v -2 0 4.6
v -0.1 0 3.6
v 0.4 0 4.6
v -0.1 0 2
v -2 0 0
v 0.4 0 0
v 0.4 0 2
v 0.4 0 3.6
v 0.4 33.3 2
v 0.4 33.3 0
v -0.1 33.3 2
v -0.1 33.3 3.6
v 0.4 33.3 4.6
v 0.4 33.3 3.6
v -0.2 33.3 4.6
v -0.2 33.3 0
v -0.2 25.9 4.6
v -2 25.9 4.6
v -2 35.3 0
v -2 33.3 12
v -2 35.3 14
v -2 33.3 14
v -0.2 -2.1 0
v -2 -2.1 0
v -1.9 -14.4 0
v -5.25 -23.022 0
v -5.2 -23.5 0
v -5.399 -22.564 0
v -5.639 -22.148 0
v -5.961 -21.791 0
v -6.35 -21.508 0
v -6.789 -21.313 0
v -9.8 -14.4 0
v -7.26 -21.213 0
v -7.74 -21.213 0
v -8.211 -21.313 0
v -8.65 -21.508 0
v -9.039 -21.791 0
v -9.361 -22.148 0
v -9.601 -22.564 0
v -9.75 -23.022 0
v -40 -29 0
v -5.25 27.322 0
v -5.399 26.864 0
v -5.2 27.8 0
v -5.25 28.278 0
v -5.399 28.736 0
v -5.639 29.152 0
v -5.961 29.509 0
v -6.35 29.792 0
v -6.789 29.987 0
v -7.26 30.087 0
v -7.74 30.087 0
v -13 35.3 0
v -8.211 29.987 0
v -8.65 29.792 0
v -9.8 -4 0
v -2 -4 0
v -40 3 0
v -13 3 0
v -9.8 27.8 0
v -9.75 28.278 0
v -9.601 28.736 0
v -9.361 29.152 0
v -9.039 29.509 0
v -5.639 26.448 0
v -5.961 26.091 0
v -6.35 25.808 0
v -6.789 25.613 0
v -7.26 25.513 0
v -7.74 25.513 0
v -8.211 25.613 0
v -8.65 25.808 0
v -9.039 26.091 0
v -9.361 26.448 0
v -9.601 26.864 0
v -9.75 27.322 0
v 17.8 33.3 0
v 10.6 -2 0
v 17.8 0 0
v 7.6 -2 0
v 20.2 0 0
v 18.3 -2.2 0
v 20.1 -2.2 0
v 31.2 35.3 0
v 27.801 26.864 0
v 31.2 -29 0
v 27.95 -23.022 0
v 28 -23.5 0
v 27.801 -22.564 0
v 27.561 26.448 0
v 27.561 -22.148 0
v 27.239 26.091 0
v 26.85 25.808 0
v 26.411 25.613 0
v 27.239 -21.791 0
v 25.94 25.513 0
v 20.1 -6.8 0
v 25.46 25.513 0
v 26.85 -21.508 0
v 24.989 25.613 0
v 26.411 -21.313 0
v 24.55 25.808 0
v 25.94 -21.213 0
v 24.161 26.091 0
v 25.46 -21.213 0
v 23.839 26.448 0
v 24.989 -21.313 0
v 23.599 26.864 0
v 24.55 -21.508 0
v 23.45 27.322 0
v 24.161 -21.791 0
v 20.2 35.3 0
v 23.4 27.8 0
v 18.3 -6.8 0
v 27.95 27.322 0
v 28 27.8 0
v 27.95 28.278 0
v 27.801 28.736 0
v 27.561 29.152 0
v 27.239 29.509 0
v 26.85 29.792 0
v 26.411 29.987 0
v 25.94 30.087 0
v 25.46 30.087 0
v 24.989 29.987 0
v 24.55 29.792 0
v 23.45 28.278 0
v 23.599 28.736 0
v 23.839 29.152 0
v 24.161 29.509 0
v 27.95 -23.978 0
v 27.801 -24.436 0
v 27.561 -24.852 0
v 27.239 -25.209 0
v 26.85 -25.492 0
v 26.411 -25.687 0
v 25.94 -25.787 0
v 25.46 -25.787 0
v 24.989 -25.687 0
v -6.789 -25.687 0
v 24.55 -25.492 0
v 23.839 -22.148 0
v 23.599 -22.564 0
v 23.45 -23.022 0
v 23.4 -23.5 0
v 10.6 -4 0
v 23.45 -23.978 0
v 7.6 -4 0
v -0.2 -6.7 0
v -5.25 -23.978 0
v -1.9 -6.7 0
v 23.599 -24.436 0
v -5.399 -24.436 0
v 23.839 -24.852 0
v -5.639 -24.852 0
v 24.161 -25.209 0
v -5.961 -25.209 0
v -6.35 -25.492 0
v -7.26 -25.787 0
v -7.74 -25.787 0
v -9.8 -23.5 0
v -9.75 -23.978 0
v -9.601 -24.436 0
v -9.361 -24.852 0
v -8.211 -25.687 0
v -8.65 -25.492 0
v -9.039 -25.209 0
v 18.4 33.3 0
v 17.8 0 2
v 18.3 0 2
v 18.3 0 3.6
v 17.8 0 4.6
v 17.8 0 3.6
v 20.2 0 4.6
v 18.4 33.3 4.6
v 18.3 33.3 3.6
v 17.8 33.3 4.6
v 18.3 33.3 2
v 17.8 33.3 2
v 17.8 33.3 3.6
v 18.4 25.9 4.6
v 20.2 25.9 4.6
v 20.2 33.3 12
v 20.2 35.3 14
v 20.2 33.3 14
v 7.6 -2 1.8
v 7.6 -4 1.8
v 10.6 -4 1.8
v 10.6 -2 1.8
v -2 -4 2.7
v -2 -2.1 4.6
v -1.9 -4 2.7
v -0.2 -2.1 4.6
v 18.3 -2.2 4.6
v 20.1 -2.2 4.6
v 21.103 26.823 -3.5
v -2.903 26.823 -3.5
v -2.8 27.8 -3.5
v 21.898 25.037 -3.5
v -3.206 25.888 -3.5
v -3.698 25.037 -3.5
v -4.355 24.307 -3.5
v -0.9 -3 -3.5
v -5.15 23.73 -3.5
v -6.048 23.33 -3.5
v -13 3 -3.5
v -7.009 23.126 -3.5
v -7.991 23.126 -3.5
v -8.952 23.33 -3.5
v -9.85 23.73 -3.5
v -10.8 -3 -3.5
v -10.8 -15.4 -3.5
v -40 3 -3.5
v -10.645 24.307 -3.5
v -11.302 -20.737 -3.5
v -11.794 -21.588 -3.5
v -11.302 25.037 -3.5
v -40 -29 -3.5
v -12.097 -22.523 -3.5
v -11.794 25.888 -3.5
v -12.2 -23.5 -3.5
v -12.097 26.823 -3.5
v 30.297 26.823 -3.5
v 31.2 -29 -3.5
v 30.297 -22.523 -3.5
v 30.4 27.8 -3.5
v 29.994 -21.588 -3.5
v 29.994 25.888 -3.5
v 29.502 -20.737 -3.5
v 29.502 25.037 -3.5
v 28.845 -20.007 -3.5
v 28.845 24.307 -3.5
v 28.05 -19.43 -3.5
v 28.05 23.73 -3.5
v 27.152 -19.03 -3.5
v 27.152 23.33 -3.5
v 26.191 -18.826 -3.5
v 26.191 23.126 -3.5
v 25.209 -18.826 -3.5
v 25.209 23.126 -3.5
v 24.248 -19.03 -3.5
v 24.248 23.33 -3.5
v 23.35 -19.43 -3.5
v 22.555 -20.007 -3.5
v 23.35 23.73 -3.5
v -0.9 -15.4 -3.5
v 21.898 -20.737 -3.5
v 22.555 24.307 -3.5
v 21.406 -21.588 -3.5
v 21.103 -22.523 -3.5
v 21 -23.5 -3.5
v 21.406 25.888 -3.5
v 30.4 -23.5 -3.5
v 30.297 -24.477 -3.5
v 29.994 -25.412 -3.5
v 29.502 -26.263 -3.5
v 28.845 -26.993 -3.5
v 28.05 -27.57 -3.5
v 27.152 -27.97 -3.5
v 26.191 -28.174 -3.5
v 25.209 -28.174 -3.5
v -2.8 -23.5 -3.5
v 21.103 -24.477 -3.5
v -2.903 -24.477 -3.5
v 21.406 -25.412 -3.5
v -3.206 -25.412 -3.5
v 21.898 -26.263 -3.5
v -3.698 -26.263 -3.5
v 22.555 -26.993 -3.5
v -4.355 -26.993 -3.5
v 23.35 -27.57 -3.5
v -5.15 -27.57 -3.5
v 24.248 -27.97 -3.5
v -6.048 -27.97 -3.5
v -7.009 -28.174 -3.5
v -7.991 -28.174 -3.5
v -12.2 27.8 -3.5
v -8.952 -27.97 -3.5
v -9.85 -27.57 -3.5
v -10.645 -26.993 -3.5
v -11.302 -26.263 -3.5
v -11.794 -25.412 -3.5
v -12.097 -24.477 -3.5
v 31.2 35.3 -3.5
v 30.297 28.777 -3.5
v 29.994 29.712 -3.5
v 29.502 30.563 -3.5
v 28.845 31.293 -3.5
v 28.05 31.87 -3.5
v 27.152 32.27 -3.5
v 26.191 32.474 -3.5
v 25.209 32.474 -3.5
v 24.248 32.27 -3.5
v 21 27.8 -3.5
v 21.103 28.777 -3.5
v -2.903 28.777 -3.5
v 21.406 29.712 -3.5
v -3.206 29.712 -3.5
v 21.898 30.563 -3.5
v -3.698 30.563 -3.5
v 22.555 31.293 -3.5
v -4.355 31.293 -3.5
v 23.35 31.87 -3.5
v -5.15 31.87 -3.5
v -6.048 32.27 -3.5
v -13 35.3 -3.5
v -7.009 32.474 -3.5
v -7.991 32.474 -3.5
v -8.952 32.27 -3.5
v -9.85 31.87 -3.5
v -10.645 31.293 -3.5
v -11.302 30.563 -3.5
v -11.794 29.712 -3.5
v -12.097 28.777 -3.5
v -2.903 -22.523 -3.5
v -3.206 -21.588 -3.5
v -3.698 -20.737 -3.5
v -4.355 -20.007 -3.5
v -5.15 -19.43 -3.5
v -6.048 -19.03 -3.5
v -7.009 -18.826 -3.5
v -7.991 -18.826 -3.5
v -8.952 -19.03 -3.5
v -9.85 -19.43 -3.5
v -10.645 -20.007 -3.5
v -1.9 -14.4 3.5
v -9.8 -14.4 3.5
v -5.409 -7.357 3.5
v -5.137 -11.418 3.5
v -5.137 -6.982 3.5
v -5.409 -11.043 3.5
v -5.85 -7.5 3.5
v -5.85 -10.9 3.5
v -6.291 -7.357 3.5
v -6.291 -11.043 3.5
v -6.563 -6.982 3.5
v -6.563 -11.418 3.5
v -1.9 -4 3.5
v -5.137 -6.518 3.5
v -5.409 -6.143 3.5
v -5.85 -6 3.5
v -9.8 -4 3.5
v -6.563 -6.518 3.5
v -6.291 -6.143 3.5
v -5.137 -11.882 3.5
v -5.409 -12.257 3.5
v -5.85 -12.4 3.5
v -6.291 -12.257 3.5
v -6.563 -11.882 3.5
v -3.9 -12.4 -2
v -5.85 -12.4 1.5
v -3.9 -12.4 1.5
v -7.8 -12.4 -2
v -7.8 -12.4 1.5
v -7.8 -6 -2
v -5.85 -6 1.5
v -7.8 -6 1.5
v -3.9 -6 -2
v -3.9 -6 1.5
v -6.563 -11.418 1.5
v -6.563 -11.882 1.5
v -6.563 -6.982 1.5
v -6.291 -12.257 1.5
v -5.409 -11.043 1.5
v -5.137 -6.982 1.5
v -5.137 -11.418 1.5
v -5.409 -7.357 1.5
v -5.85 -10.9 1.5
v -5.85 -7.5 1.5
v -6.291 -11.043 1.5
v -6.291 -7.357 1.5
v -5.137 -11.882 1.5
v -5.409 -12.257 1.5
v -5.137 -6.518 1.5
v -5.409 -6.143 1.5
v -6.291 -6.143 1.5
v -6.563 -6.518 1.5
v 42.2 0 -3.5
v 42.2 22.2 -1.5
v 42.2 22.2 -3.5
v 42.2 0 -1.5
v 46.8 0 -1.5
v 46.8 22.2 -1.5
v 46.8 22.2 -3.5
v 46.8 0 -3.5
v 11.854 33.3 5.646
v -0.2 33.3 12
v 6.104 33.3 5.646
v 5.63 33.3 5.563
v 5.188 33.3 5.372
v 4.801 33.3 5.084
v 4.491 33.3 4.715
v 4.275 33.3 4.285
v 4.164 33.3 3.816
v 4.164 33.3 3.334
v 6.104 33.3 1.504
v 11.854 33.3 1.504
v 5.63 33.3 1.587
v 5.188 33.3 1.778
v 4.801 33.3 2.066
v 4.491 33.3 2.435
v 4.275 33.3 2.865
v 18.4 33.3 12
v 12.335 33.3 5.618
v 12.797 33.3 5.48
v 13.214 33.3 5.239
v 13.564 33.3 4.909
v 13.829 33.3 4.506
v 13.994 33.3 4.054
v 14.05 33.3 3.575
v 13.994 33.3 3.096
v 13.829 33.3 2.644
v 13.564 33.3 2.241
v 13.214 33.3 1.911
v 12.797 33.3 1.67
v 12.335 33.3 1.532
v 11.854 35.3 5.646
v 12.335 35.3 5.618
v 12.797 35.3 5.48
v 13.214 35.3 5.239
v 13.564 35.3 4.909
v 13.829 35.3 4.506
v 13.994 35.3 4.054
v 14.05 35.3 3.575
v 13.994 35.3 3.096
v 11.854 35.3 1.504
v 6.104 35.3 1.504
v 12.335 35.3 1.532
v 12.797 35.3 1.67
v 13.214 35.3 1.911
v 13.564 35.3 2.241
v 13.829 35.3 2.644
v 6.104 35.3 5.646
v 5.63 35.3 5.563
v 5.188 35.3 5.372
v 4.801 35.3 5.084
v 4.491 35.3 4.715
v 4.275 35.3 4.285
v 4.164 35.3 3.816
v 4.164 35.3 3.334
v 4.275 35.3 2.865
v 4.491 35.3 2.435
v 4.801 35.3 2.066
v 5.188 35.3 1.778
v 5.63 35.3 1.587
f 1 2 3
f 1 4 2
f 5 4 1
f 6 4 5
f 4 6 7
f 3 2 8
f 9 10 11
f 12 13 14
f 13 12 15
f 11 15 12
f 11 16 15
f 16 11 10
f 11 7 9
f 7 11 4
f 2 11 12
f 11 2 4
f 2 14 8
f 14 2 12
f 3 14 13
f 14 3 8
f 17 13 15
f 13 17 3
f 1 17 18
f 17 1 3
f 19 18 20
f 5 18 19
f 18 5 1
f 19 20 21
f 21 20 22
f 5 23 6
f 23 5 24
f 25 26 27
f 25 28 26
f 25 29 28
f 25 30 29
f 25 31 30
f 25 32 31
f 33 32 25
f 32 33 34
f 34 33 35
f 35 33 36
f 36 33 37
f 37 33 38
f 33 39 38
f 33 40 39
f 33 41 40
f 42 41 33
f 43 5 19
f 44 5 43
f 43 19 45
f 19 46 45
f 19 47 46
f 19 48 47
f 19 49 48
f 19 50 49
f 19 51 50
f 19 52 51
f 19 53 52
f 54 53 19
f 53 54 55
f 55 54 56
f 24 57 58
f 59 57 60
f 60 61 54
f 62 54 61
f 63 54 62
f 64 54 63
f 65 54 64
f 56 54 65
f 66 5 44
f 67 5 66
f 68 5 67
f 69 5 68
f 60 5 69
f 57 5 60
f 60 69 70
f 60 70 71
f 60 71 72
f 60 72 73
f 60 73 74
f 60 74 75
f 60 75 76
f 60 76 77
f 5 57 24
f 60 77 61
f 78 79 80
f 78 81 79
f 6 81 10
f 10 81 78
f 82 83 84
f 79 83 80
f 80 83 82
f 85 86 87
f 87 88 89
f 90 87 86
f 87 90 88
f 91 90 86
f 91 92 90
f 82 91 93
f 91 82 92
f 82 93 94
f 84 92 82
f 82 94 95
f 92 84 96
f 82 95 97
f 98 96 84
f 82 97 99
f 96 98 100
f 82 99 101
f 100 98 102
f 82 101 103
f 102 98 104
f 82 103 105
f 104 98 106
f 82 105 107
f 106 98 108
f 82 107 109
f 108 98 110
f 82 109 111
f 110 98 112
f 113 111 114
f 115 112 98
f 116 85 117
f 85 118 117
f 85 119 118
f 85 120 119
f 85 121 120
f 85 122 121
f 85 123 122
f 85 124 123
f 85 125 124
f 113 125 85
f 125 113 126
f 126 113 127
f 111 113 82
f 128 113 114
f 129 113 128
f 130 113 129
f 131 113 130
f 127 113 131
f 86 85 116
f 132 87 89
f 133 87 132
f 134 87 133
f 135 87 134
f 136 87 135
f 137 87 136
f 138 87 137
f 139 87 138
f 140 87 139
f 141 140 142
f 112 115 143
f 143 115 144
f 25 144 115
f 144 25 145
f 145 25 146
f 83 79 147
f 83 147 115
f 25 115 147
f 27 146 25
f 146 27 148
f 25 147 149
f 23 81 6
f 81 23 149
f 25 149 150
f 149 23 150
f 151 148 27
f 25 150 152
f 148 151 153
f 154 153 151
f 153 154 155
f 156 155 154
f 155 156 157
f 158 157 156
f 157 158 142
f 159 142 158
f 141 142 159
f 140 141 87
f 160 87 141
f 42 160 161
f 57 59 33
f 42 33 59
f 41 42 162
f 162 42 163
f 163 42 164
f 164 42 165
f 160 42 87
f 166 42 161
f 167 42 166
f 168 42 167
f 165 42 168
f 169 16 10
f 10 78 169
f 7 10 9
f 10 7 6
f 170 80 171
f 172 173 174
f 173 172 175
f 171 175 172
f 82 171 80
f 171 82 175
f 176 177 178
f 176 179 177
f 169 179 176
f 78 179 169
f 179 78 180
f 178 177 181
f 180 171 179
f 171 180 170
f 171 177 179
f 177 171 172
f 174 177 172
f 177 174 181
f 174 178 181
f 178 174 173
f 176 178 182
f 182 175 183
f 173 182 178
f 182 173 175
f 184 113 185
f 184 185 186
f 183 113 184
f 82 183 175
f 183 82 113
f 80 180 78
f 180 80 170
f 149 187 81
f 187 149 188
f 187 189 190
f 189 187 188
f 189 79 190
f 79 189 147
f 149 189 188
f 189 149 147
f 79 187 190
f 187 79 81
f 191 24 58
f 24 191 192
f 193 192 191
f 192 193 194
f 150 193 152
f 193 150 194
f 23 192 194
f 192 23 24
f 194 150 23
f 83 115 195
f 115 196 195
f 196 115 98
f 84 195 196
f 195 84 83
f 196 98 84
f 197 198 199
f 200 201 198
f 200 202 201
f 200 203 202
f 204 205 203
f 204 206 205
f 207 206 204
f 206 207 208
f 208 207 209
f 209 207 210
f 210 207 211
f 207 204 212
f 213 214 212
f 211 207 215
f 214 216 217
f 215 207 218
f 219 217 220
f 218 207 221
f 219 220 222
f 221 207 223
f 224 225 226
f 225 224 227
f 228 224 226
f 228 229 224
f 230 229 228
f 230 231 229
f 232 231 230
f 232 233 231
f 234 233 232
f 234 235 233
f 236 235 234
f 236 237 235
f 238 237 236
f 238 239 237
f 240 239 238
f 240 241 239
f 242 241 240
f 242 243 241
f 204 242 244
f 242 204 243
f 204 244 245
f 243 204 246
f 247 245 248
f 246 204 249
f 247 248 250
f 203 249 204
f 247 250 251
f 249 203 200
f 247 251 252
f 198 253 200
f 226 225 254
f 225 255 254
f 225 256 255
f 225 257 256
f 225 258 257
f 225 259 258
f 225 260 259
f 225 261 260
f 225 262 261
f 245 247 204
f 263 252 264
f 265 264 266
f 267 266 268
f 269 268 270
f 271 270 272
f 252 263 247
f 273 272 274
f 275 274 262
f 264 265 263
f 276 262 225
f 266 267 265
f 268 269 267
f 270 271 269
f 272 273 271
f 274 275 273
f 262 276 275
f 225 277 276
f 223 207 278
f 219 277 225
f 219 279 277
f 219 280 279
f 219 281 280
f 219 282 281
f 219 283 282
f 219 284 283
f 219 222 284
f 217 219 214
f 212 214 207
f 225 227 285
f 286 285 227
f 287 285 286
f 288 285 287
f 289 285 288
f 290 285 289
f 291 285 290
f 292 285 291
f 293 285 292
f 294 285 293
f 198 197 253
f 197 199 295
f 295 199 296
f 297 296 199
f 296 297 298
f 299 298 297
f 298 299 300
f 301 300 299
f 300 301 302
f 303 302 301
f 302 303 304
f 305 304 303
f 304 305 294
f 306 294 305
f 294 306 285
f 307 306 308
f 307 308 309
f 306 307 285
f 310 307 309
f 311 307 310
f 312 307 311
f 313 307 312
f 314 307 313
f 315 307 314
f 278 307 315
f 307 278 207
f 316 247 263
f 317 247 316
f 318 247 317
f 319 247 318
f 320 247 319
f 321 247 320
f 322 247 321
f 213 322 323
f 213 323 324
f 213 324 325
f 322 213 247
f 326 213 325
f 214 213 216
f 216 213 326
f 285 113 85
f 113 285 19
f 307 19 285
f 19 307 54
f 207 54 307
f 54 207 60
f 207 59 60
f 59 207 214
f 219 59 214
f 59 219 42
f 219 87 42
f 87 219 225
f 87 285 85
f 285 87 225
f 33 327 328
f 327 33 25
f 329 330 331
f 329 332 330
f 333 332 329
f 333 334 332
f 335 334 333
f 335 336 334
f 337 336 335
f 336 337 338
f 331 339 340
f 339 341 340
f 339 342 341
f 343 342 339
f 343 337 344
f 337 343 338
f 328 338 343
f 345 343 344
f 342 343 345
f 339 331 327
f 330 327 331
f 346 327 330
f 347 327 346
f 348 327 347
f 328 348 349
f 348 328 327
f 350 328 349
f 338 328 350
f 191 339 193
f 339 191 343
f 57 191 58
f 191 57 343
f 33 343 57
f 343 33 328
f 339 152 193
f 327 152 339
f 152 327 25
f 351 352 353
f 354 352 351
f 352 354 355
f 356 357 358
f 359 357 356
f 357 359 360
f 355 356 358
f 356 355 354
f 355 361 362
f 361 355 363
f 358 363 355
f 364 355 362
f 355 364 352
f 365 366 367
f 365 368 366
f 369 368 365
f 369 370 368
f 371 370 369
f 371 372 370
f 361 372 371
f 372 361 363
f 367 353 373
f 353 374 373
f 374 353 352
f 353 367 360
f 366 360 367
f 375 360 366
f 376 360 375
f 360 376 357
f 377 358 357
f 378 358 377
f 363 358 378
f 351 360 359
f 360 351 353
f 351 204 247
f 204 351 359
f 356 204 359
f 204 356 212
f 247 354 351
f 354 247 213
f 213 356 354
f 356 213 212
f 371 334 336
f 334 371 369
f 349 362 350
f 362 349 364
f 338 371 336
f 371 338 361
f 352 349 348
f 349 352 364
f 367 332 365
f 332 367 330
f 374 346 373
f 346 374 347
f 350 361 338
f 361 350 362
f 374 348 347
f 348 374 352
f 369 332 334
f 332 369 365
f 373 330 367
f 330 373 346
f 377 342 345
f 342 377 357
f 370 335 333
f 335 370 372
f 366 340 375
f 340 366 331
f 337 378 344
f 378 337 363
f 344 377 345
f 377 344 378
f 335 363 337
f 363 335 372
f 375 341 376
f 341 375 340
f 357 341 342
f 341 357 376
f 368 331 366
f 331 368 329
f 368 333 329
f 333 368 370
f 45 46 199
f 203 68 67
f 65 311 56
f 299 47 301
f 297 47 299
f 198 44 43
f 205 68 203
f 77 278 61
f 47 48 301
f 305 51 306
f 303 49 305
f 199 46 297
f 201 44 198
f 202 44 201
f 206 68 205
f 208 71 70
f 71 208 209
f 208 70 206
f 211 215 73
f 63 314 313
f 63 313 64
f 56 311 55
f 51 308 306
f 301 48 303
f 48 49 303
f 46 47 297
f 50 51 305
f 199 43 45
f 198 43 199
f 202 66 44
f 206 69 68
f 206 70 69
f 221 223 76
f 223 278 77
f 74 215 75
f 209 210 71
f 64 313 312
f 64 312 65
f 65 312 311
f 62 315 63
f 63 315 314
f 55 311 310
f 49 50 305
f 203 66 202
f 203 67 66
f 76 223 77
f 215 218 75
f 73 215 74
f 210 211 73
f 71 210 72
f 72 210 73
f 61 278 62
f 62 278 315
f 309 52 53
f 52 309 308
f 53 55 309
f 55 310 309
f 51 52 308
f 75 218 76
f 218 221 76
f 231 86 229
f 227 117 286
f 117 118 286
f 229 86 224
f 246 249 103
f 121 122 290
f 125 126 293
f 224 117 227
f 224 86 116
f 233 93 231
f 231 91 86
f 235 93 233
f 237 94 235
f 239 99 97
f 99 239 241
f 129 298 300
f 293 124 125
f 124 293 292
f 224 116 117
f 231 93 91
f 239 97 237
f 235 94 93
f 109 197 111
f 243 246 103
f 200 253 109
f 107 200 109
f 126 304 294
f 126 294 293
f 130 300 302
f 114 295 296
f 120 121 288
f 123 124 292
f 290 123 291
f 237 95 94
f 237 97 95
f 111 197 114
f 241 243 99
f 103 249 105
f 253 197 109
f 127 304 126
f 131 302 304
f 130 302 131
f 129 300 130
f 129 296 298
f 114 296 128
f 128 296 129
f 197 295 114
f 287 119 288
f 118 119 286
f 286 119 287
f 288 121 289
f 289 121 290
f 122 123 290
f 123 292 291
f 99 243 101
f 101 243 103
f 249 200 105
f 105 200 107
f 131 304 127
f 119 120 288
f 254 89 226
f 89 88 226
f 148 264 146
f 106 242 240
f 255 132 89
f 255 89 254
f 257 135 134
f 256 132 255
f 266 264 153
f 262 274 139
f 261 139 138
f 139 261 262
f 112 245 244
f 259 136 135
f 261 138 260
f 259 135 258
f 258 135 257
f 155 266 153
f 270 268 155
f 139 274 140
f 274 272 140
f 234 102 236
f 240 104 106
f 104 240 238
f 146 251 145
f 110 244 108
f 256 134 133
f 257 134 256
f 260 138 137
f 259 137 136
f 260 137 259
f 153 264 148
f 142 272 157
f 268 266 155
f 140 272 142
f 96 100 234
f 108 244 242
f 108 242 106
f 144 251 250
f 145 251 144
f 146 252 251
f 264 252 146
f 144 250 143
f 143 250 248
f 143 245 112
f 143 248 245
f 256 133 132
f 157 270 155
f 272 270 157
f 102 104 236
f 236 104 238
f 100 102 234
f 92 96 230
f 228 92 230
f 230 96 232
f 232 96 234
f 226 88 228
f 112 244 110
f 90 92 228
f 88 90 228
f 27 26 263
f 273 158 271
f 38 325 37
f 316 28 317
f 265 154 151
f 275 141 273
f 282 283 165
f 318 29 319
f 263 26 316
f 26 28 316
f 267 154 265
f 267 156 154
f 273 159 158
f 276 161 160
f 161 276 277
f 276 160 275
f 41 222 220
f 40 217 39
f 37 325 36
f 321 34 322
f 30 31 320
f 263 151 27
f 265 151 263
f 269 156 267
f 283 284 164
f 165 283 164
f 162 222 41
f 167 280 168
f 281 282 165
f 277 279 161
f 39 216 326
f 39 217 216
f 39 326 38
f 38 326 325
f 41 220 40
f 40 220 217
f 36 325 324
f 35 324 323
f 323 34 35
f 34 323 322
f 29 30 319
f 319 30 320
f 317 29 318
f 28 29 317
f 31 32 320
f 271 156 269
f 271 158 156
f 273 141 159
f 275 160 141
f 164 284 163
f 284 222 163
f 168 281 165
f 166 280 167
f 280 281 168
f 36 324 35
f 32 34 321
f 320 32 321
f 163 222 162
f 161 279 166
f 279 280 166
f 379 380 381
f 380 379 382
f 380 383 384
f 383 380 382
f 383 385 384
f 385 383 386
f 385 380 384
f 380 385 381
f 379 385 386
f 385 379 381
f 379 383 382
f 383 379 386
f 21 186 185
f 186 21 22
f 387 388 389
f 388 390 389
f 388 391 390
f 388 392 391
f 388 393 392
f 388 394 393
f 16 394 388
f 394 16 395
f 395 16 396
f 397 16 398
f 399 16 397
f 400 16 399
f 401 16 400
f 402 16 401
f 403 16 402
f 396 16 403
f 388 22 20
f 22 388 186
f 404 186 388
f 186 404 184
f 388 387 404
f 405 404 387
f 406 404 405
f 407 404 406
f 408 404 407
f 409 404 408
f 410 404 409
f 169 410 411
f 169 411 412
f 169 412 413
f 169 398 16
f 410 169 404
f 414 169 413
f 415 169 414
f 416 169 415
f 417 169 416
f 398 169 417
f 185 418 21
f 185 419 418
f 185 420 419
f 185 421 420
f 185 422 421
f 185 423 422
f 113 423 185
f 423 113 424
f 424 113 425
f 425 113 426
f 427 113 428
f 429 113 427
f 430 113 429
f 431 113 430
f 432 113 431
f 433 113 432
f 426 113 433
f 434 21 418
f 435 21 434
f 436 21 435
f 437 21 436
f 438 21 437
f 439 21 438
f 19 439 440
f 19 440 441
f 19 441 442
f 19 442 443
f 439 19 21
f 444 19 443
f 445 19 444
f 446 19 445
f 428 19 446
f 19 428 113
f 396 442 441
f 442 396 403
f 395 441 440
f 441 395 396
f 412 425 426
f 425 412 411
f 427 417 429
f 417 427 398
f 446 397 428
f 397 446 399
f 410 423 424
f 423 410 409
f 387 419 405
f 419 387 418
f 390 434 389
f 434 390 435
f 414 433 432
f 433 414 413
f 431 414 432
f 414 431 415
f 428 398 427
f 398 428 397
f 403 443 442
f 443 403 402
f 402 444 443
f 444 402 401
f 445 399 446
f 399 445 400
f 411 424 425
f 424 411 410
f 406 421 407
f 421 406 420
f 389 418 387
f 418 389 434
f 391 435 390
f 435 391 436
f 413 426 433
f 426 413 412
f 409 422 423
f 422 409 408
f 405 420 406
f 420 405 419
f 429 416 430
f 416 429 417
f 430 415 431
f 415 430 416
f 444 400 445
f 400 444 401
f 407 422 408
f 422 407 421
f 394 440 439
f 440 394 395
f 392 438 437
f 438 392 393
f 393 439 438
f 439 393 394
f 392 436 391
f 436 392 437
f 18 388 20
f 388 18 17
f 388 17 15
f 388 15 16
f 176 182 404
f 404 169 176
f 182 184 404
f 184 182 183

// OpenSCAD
// dimensions of the nice!nano mcu
nn_w = 18.2;
nn_l = 33.3;
nn_d = 1.6;
nn_usb_d = 3.15;
nn_usb_w = 8.9;

// tolerances
tol = 0.2;
$fs = 0.5;

// external dimensions
wall = 2.0;

// countersunk screw 
screw_r = 2.3;
countersink_r = 4.7;

// holder
holder_inset = 0.4;
padding_top = 1.0;
padding_bottom = 2.0;

// backstop
// backstop_screw_r = 3.2/2 + 2*tol;
// backstop_screw_head_r = 7.65/2 + tol;
bs_w = 3.0;
bs_l = 2.0;

// front plate
box_height = 10.0;
cable_port_d = 0.3;

// bottom plate
skirt = 11.0;
bp_padding_bottom = 20.0 - wall; // oops. bad measurement. adjusting...
bp_left_shaft = 40.0;
bp_left_shaft_w = 10;
floor_d = 3.5;

// reset switch

rs_w = 3.5 + 2*tol;
rs_l = 6 + 2*tol;
rs_d = 3.5;
rs_inset_d = 1.5;
rs_inset = 3;
rs_leg_d = 1.5; // leg hole diameter


// todo2
// - [x] bottom plate
// - [x] screw countersinks
// - [x] front plate
// - [x] mcu side holder
// - [x] mcu backstop block
// - [ ] reset switch hollow (box w/ 2 holes)
// - [x] pick out and measure both screws

// modules

module holder_side(){
    rotate([90,0,0]) mirror([0,0,1]){
    linear_extrude(height=nn_l){
        polygon(points=[
            [0-wall,0], // origin
            [0-wall,padding_top + padding_bottom + nn_d], // top left
            [holder_inset,padding_top + padding_bottom + nn_d], // top right

            [holder_inset,  padding_bottom + nn_d],
            [-1*tol/2, padding_bottom + nn_d],
            [-1*tol/2, padding_bottom],
            [holder_inset, padding_bottom],
            [holder_inset, 0]
        ]);
    };
    };
};

module holder() {
    holder_side();
    translate([nn_w,0,0]) mirror([1, 0, 0]) {
        holder_side();
    }
}

module support(side) {
    rotate([0,90,0]) linear_extrude(wall-tol) polygon(points=[
        [0,0], [0,-side],[-side,0]
    ]);
}

module front_plate() {
    translate([-1*wall, nn_l, 0]) union() {
        difference(){
            cube([nn_w + 2*wall, wall, box_height+wall*2]);
            # translate([nn_usb_d/2 + wall + (nn_w - nn_usb_w) / 2,  0, nn_usb_d/2 + padding_bottom]) rotate([90,0,0]) mirror([0,0,1]) linear_extrude(wall+tol) hull() {
                circle(d=nn_usb_d+2*(tol+cable_port_d));
                translate([nn_usb_w-nn_usb_d,0]) circle(d=nn_usb_d+2*(tol+cable_port_d));
            }
        }
        support(box_height+wall);
        translate([nn_w+wall+tol,0,0]) support(box_height+wall);
    }
}


module backstop() {
    translate([0,-wall]) union() {
        translate([nn_w/2 - bs_w/2,-bs_l,0]) cube([bs_w, bs_l,padding_bottom-tol]);
        translate([-wall,-tol/2,0]) support(padding_top + padding_bottom + nn_d);
        translate([nn_w+wall+tol/2,0,0]) translate([-wall,-tol,0]) support(padding_top + padding_bottom + nn_d);
    }

    // separate bar to lock things in place
    translate([nn_w+wall+skirt*2, 0, -floor_d]) {
        cube([padding_top + padding_bottom + nn_d, nn_w+wall*2, wall]);
        
    }
}


module countersink() {
    #cylinder(h=floor_d,r1=screw_r,r2=countersink_r);
}


module truncated_pyramid(sides,outset) {
    // from example: https://en.wikibooks.org/wiki/OpenSCAD_User_Manual/Primitive_Solids#polyhedron
    // top face is outset `outset` units from bottom.
    polyhedron( [
            [  0,  0,  0 ],  //0
            [ sides.x,  0,  0 ],  //1
            [ sides.x,  sides.y,  0 ],  //2
            [  0,  sides.y,  0 ],  //3
            [  0-outset,  0-outset,  sides.z ],  //4
            [ sides.x+outset,  0-outset,  sides.z ],  //5
            [ sides.x+outset,  sides.y + outset,  sides.z ],  //6
            [  0-outset,  sides.y + outset,  sides.z ]   //7
        ],
        [
            [0,1,2,3],  // bottom
            [4,5,1,0],  // front
            [7,6,5,4],  // top
            [5,6,2,1],  // right
            [6,7,3,2],  // back
            [7,4,0,3]  // left
        ]);
}


rs_origin = [0-rs_w,0-bp_padding_bottom+bp_left_shaft_w+wall-rs_l, floor_d];

module rs_hollow() {
    #translate(rs_origin) rotate([0,0,90]) translate([0,0,0-rs_d - rs_inset_d]) {
        cube([rs_l,rs_w,rs_d + rs_inset_d]);
        translate([0,0,rs_d]) truncated_pyramid([rs_l, rs_w, rs_inset_d], rs_inset);
        translate([rs_leg_d/2, rs_w/2, 0-floor_d]) cylinder(d=rs_leg_d, h=floor_d);
        translate([rs_l-rs_leg_d/2, rs_w/2, 0-floor_d]) cylinder(d=rs_leg_d, h=floor_d);
    }
}

module rs_hull() {
    translate(rs_origin) rotate([0,0,90]) mirror([0,0,1]) translate([0-wall, 0-wall, 0]){
        cube([rs_l+2*wall,rs_w+2*wall,wall+rs_d + rs_inset_d]);
    }

}

module bottom_plate() {
    mirror([0, 0, 1]) difference() {
        union(){
            linear_extrude(floor_d) polygon(points=[
                [0 - wall - skirt, nn_l + wall],
                [nn_w + wall + skirt, nn_l + wall],
                [nn_w + wall + skirt, 0-bp_padding_bottom-skirt],
                [0-bp_left_shaft, 0-bp_padding_bottom-skirt],
                [0-bp_left_shaft, 0-bp_padding_bottom+bp_left_shaft_w+skirt],
                [0-wall-skirt, 0-bp_padding_bottom+bp_left_shaft_w+skirt],
            ]);
            rs_hull();
        }

        // screws
        translate([skirt/-2-wall,nn_l-skirt/2,0]) countersink();
        translate([skirt/2+nn_w+wall,nn_l-skirt/2,0]) countersink();
        translate([skirt/2+nn_w+wall,0- bp_padding_bottom- skirt/2,0]) countersink();
        // translate([0-bp_left_shaft+skirt/2,0- bp_padding_bottom- skirt/2,0]) countersink();
        // translate([0-bp_left_shaft+skirt/2,0-bp_padding_bottom+bp_left_shaft_w+skirt/2,0]) countersink();
        translate([0-wall-skirt/2,0- bp_padding_bottom- skirt/2,0]) countersink();

        rs_hollow();
    }
        
    
        
}


// main

holder();
backstop();
front_plate();
bottom_plate();


// todo: 
// - [x] supports on side of frontplate
// - [x] tighter holder
// - [s] redesign backstop
// - [x] move rest switch box
